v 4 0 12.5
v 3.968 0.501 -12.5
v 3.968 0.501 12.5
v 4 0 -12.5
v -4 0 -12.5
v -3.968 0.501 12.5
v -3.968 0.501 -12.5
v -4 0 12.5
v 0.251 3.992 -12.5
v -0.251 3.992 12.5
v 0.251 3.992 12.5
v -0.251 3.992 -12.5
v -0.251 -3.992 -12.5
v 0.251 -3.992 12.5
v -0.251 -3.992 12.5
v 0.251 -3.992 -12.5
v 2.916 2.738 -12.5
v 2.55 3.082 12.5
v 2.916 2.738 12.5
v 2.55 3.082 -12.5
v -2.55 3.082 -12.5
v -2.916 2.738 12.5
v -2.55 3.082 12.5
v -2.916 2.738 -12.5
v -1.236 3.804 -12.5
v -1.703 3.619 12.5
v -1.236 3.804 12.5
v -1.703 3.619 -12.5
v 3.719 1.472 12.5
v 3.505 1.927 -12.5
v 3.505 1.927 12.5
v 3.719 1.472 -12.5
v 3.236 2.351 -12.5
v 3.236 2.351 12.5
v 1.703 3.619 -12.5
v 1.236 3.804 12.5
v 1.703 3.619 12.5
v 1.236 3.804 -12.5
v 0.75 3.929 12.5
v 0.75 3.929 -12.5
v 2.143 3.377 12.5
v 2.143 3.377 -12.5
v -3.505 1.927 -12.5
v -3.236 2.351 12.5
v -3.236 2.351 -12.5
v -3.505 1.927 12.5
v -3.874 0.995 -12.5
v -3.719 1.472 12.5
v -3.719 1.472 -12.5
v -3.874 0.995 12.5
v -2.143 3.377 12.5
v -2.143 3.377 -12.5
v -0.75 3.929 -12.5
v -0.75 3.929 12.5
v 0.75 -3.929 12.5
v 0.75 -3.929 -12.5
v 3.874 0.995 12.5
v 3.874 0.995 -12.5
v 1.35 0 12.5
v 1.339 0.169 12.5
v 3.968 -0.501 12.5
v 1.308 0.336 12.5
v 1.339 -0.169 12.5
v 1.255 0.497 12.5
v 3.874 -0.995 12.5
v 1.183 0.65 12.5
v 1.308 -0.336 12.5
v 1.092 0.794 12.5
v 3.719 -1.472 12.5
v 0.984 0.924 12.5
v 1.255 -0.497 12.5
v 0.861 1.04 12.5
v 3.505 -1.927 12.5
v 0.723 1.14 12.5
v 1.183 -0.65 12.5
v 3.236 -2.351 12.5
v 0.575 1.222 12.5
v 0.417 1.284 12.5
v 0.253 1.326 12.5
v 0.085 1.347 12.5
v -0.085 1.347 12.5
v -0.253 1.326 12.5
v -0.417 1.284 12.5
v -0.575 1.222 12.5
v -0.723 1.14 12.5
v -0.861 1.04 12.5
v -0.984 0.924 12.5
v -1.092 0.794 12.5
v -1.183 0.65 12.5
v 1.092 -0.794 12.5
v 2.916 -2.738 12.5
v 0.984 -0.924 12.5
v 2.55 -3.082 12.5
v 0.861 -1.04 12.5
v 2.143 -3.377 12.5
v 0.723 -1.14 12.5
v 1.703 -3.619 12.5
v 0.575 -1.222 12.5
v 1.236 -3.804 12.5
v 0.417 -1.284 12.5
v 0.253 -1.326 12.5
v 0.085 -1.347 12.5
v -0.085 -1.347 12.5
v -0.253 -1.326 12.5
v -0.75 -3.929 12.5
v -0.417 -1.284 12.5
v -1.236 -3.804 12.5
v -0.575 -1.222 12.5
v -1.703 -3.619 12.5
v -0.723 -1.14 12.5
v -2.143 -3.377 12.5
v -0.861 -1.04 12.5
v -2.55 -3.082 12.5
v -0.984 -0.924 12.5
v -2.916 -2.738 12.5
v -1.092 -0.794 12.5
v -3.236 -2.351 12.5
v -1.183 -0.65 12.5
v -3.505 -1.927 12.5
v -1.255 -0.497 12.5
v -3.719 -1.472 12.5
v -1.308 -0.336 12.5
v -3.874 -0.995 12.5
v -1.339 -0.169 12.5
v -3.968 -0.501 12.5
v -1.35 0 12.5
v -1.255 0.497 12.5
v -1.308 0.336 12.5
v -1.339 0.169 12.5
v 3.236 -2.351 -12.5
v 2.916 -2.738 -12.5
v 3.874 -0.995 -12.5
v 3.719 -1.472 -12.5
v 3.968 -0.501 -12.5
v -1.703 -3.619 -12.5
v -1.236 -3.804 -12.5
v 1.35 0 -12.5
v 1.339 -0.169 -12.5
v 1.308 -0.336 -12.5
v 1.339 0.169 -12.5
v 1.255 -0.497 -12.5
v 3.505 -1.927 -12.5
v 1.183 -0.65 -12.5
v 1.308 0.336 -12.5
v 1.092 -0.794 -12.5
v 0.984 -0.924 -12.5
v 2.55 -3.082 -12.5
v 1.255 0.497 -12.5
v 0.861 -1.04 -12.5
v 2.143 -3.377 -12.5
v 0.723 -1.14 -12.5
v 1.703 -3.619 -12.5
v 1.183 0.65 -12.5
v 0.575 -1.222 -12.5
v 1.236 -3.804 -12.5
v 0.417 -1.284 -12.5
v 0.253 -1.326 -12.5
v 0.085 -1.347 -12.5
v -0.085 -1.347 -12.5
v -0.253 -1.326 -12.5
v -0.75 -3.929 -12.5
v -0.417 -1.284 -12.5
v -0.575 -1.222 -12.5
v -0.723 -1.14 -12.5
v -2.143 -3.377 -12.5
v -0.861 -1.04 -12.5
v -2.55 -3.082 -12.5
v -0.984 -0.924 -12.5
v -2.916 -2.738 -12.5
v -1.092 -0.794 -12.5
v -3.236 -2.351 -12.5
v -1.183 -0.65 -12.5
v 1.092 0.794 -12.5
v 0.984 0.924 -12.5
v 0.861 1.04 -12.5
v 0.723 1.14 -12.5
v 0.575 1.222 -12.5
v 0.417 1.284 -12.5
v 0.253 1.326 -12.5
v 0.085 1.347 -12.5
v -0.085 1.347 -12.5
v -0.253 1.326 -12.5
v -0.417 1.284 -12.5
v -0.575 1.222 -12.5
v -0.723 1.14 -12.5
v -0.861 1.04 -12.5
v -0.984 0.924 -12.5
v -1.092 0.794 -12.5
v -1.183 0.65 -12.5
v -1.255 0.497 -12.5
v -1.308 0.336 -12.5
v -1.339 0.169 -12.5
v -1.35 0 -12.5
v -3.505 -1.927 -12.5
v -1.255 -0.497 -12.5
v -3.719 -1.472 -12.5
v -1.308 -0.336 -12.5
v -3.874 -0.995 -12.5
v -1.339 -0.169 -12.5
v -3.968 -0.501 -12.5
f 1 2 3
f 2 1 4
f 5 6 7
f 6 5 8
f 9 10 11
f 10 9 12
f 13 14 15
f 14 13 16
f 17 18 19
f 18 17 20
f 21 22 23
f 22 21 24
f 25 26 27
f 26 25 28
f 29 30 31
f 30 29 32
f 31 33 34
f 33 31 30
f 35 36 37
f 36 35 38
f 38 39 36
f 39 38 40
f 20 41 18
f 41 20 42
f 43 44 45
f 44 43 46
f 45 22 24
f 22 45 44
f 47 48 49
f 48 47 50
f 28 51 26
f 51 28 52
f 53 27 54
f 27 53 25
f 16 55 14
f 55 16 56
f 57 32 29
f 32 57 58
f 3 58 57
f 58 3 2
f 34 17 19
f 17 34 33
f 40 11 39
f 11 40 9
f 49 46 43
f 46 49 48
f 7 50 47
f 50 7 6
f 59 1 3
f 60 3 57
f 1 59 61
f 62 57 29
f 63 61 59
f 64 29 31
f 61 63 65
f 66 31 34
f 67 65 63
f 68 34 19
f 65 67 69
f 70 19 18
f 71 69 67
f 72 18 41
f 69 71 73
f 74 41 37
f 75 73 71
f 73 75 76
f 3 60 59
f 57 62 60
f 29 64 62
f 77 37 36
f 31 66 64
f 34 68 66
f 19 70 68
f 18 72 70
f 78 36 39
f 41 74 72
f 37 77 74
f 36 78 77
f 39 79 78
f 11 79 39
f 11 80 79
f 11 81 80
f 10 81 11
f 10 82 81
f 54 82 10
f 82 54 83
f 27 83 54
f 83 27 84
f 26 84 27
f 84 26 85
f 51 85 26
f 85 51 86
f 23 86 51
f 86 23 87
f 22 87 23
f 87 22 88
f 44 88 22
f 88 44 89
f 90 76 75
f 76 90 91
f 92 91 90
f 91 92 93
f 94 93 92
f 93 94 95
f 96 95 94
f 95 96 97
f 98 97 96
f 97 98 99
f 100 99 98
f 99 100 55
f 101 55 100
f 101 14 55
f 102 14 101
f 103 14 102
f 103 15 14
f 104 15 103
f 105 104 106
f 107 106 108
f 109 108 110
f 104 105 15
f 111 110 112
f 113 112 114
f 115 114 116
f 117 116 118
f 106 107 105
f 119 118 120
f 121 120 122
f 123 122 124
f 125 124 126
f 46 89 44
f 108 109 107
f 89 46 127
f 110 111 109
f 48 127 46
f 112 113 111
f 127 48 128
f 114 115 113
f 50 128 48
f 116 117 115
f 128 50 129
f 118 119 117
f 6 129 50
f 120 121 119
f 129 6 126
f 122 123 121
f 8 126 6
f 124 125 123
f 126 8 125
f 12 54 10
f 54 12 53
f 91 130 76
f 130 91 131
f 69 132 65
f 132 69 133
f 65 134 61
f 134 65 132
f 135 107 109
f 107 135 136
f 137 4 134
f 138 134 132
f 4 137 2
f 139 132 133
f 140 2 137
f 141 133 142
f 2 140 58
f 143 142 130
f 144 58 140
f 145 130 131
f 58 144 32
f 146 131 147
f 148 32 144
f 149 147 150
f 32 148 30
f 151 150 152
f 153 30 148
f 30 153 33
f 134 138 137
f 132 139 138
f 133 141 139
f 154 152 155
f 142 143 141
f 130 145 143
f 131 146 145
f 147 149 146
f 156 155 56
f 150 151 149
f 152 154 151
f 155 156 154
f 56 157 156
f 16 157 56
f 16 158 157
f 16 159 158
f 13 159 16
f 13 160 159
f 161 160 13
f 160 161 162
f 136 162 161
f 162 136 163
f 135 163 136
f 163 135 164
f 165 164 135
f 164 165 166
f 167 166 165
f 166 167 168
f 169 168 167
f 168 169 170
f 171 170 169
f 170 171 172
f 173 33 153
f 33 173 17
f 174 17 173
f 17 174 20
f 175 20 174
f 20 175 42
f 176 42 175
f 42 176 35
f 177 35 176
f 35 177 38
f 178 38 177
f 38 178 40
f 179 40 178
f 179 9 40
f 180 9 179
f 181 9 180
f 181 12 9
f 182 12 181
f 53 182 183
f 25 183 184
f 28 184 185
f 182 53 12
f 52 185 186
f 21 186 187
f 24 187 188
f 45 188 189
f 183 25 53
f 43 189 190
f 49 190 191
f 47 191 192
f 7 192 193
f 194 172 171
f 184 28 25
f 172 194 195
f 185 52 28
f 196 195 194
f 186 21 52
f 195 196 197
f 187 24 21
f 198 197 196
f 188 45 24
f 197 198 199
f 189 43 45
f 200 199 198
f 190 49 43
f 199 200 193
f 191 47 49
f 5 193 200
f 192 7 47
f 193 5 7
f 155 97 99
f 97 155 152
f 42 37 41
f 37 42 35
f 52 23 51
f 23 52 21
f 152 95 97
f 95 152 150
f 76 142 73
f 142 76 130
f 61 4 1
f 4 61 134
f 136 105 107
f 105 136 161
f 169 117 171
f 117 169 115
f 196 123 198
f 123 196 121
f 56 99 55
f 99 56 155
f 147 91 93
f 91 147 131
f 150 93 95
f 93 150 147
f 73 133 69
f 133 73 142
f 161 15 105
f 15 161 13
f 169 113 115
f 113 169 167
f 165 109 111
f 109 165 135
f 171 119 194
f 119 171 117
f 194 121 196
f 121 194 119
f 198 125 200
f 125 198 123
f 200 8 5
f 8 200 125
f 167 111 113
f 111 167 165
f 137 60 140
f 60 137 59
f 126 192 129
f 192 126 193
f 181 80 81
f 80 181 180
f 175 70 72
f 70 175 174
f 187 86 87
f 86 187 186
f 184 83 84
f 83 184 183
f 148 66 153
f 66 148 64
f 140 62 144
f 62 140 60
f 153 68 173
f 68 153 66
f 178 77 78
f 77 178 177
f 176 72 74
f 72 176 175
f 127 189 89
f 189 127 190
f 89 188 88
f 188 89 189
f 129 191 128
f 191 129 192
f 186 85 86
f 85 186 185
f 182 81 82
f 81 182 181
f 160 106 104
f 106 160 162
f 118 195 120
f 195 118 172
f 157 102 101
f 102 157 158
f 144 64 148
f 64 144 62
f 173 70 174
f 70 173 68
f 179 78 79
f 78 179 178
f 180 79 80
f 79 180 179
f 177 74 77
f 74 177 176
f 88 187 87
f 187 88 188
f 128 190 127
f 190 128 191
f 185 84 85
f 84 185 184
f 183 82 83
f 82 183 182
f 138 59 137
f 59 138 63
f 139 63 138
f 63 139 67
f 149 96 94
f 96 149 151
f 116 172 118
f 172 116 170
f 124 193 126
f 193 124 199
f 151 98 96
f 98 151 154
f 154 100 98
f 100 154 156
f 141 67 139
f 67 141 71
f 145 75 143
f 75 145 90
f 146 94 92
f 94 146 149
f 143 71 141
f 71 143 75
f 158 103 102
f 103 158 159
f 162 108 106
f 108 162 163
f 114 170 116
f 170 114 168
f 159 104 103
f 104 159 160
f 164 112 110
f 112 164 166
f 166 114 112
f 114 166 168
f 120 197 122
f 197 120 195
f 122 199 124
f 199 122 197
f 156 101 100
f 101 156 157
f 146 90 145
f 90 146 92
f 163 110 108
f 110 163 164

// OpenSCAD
$fn = 50;


difference() {
	union() {
		translate(v = [0, 0, -12.5000000000]) {
			cylinder(h = 25, r = 4.0000000000);
		}
	}
	union() {
		translate(v = [0, 0, -100.0000000000]) {
			cylinder(h = 200, r = 1.3500000000);
		}
	}
}
